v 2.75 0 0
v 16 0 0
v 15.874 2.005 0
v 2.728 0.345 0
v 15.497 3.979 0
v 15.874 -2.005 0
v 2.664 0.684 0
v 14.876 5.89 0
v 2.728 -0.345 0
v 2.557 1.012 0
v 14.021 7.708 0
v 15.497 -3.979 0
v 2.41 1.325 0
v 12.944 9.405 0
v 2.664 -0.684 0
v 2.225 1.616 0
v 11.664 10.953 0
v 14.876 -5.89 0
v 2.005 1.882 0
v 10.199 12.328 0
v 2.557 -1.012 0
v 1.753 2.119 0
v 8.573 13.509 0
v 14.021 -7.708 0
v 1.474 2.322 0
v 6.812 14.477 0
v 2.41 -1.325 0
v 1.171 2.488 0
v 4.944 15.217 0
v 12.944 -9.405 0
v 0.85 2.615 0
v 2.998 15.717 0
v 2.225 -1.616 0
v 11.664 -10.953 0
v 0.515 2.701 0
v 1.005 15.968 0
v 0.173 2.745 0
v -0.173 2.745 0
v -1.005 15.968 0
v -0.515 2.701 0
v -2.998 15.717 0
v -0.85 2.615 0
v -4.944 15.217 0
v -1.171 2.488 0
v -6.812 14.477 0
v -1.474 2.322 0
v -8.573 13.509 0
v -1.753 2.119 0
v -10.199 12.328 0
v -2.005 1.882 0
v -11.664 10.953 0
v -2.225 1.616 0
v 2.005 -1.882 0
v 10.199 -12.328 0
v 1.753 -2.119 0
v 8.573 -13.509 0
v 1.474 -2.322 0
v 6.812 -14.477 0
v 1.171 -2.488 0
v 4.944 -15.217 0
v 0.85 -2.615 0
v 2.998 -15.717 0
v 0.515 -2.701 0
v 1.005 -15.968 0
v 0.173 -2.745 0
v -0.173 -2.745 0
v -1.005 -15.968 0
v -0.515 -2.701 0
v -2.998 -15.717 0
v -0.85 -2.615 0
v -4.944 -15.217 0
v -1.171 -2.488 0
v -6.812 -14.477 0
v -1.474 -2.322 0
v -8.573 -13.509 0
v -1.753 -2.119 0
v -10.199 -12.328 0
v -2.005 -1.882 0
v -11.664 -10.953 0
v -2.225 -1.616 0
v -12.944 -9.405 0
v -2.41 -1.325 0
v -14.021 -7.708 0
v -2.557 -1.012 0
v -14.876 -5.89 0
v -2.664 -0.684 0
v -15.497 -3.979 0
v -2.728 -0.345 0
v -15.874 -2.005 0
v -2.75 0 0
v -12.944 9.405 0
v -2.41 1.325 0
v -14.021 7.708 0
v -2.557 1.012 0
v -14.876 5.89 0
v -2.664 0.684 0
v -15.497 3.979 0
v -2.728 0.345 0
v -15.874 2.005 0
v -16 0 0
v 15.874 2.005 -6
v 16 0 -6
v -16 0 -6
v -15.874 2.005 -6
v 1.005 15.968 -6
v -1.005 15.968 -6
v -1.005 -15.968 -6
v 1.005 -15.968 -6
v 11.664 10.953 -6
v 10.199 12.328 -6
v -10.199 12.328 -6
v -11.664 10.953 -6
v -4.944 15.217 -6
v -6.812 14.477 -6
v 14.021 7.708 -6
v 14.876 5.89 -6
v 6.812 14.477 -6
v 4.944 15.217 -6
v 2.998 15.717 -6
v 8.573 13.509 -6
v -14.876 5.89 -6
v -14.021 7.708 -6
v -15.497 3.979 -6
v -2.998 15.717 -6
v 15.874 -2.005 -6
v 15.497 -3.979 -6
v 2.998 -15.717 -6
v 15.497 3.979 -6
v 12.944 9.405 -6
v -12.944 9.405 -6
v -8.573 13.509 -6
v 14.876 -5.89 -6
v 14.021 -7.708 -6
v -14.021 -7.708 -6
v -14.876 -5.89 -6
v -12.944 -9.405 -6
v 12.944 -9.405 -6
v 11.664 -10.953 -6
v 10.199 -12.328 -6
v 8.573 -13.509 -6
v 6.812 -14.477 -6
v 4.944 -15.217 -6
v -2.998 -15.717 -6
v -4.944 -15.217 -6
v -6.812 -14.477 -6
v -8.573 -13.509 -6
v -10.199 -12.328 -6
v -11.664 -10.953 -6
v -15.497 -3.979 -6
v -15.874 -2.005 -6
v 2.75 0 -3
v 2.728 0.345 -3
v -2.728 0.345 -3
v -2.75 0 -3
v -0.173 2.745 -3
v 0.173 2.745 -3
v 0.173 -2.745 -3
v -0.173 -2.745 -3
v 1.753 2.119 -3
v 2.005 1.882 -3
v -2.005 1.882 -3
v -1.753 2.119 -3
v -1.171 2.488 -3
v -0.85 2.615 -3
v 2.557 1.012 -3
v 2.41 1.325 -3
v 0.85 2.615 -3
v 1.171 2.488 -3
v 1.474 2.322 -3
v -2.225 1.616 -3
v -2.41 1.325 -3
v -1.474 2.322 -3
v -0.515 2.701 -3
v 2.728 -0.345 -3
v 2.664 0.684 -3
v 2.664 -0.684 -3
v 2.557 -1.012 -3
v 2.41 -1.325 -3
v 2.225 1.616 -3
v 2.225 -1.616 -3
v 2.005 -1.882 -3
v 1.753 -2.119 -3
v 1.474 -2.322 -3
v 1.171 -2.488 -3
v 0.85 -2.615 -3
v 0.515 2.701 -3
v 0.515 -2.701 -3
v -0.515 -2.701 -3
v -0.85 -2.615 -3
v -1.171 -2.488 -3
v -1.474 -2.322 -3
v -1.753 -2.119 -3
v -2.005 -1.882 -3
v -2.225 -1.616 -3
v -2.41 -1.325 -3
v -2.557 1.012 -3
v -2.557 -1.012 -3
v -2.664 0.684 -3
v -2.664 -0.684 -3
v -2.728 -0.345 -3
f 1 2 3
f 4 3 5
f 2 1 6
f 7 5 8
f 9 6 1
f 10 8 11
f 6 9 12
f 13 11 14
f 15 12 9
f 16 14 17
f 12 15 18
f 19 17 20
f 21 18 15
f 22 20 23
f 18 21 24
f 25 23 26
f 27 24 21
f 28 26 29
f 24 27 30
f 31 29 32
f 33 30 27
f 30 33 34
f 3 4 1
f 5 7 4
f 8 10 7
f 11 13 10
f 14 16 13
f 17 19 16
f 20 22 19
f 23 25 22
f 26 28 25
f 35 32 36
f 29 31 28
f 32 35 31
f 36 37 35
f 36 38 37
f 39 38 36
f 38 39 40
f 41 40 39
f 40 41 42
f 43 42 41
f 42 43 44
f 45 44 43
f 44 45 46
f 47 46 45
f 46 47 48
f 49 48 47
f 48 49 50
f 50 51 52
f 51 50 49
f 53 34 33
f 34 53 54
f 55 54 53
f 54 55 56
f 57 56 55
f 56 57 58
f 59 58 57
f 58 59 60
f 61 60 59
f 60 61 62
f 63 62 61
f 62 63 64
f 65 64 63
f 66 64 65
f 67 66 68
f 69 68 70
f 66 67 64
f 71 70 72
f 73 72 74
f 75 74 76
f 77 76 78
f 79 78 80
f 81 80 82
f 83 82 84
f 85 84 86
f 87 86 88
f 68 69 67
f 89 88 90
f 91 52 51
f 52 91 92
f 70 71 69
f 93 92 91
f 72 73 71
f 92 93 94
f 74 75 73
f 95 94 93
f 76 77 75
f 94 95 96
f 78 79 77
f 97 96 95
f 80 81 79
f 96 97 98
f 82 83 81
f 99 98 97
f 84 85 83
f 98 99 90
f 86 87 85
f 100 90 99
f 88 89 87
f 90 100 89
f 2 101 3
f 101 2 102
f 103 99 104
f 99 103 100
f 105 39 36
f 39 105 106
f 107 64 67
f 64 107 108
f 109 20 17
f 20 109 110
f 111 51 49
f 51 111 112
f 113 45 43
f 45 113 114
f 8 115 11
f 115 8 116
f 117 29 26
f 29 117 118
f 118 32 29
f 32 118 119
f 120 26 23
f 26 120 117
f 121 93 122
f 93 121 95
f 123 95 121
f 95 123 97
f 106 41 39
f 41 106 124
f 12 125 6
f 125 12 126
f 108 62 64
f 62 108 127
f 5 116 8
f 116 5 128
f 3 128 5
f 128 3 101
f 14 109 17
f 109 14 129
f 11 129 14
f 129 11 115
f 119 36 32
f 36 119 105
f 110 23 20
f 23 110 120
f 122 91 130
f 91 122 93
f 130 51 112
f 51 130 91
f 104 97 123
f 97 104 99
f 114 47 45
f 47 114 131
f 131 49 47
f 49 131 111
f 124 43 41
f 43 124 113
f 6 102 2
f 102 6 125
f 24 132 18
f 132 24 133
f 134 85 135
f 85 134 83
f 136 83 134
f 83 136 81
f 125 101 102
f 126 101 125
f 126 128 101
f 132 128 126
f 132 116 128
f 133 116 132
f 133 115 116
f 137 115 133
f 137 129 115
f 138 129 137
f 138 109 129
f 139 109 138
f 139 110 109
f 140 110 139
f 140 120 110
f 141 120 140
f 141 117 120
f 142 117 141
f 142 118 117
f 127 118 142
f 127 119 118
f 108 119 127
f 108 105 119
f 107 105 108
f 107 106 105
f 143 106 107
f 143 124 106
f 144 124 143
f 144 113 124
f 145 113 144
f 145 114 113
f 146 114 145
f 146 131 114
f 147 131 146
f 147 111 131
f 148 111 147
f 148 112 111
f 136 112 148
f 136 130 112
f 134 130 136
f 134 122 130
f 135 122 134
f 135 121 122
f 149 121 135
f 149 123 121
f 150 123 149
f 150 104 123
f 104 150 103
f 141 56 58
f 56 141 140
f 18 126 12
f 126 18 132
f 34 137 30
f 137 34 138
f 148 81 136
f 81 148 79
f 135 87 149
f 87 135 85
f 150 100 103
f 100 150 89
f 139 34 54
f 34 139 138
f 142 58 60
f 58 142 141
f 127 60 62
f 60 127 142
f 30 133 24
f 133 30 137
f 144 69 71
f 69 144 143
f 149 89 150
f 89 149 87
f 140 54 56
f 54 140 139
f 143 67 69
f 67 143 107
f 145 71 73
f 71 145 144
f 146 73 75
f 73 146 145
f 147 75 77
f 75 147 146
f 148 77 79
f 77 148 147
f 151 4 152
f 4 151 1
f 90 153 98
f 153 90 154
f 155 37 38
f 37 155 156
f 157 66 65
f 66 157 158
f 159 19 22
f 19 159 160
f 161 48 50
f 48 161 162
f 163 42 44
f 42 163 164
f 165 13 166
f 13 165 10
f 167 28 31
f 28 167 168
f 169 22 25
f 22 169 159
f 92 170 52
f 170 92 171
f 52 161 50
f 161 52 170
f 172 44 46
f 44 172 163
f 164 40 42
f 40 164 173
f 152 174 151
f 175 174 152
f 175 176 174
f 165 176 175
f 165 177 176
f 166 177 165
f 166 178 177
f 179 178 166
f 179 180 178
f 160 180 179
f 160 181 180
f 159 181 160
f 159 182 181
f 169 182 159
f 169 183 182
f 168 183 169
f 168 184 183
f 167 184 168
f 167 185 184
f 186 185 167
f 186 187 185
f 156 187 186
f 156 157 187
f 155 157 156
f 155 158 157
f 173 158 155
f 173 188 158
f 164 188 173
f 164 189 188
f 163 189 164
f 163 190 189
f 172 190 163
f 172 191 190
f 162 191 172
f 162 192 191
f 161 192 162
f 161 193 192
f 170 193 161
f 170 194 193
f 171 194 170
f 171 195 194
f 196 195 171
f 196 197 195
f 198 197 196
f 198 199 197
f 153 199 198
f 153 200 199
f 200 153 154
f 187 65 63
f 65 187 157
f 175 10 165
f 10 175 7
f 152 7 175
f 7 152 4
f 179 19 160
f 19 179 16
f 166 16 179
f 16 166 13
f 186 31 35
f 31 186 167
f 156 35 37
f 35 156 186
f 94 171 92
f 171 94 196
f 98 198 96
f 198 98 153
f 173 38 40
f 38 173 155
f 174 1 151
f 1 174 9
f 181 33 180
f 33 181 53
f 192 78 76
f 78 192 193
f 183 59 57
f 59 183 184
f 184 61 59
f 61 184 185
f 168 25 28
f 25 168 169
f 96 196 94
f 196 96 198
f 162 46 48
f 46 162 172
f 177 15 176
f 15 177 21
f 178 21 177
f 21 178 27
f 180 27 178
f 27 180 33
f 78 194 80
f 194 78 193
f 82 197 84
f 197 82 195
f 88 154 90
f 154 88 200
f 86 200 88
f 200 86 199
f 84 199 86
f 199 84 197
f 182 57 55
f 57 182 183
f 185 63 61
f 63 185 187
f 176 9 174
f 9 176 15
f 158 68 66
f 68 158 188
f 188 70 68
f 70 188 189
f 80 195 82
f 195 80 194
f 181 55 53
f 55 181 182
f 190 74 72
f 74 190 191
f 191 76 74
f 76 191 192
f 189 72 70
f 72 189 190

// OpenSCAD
$fn = 50;


difference() {
	union() {
		translate(v = [0, 0, -3.0000000000]) {
			cylinder(h = 3, r = 7.0000000000);
		}
		translate(v = [0, 0, -6.0000000000]) {
			cylinder(h = 6, r = 16.0000000000);
		}
	}
	union() {
		#translate(v = [0, 0, -3]) {
			cylinder(h = 3, r = 2.7500000000);
		}
	}
}
